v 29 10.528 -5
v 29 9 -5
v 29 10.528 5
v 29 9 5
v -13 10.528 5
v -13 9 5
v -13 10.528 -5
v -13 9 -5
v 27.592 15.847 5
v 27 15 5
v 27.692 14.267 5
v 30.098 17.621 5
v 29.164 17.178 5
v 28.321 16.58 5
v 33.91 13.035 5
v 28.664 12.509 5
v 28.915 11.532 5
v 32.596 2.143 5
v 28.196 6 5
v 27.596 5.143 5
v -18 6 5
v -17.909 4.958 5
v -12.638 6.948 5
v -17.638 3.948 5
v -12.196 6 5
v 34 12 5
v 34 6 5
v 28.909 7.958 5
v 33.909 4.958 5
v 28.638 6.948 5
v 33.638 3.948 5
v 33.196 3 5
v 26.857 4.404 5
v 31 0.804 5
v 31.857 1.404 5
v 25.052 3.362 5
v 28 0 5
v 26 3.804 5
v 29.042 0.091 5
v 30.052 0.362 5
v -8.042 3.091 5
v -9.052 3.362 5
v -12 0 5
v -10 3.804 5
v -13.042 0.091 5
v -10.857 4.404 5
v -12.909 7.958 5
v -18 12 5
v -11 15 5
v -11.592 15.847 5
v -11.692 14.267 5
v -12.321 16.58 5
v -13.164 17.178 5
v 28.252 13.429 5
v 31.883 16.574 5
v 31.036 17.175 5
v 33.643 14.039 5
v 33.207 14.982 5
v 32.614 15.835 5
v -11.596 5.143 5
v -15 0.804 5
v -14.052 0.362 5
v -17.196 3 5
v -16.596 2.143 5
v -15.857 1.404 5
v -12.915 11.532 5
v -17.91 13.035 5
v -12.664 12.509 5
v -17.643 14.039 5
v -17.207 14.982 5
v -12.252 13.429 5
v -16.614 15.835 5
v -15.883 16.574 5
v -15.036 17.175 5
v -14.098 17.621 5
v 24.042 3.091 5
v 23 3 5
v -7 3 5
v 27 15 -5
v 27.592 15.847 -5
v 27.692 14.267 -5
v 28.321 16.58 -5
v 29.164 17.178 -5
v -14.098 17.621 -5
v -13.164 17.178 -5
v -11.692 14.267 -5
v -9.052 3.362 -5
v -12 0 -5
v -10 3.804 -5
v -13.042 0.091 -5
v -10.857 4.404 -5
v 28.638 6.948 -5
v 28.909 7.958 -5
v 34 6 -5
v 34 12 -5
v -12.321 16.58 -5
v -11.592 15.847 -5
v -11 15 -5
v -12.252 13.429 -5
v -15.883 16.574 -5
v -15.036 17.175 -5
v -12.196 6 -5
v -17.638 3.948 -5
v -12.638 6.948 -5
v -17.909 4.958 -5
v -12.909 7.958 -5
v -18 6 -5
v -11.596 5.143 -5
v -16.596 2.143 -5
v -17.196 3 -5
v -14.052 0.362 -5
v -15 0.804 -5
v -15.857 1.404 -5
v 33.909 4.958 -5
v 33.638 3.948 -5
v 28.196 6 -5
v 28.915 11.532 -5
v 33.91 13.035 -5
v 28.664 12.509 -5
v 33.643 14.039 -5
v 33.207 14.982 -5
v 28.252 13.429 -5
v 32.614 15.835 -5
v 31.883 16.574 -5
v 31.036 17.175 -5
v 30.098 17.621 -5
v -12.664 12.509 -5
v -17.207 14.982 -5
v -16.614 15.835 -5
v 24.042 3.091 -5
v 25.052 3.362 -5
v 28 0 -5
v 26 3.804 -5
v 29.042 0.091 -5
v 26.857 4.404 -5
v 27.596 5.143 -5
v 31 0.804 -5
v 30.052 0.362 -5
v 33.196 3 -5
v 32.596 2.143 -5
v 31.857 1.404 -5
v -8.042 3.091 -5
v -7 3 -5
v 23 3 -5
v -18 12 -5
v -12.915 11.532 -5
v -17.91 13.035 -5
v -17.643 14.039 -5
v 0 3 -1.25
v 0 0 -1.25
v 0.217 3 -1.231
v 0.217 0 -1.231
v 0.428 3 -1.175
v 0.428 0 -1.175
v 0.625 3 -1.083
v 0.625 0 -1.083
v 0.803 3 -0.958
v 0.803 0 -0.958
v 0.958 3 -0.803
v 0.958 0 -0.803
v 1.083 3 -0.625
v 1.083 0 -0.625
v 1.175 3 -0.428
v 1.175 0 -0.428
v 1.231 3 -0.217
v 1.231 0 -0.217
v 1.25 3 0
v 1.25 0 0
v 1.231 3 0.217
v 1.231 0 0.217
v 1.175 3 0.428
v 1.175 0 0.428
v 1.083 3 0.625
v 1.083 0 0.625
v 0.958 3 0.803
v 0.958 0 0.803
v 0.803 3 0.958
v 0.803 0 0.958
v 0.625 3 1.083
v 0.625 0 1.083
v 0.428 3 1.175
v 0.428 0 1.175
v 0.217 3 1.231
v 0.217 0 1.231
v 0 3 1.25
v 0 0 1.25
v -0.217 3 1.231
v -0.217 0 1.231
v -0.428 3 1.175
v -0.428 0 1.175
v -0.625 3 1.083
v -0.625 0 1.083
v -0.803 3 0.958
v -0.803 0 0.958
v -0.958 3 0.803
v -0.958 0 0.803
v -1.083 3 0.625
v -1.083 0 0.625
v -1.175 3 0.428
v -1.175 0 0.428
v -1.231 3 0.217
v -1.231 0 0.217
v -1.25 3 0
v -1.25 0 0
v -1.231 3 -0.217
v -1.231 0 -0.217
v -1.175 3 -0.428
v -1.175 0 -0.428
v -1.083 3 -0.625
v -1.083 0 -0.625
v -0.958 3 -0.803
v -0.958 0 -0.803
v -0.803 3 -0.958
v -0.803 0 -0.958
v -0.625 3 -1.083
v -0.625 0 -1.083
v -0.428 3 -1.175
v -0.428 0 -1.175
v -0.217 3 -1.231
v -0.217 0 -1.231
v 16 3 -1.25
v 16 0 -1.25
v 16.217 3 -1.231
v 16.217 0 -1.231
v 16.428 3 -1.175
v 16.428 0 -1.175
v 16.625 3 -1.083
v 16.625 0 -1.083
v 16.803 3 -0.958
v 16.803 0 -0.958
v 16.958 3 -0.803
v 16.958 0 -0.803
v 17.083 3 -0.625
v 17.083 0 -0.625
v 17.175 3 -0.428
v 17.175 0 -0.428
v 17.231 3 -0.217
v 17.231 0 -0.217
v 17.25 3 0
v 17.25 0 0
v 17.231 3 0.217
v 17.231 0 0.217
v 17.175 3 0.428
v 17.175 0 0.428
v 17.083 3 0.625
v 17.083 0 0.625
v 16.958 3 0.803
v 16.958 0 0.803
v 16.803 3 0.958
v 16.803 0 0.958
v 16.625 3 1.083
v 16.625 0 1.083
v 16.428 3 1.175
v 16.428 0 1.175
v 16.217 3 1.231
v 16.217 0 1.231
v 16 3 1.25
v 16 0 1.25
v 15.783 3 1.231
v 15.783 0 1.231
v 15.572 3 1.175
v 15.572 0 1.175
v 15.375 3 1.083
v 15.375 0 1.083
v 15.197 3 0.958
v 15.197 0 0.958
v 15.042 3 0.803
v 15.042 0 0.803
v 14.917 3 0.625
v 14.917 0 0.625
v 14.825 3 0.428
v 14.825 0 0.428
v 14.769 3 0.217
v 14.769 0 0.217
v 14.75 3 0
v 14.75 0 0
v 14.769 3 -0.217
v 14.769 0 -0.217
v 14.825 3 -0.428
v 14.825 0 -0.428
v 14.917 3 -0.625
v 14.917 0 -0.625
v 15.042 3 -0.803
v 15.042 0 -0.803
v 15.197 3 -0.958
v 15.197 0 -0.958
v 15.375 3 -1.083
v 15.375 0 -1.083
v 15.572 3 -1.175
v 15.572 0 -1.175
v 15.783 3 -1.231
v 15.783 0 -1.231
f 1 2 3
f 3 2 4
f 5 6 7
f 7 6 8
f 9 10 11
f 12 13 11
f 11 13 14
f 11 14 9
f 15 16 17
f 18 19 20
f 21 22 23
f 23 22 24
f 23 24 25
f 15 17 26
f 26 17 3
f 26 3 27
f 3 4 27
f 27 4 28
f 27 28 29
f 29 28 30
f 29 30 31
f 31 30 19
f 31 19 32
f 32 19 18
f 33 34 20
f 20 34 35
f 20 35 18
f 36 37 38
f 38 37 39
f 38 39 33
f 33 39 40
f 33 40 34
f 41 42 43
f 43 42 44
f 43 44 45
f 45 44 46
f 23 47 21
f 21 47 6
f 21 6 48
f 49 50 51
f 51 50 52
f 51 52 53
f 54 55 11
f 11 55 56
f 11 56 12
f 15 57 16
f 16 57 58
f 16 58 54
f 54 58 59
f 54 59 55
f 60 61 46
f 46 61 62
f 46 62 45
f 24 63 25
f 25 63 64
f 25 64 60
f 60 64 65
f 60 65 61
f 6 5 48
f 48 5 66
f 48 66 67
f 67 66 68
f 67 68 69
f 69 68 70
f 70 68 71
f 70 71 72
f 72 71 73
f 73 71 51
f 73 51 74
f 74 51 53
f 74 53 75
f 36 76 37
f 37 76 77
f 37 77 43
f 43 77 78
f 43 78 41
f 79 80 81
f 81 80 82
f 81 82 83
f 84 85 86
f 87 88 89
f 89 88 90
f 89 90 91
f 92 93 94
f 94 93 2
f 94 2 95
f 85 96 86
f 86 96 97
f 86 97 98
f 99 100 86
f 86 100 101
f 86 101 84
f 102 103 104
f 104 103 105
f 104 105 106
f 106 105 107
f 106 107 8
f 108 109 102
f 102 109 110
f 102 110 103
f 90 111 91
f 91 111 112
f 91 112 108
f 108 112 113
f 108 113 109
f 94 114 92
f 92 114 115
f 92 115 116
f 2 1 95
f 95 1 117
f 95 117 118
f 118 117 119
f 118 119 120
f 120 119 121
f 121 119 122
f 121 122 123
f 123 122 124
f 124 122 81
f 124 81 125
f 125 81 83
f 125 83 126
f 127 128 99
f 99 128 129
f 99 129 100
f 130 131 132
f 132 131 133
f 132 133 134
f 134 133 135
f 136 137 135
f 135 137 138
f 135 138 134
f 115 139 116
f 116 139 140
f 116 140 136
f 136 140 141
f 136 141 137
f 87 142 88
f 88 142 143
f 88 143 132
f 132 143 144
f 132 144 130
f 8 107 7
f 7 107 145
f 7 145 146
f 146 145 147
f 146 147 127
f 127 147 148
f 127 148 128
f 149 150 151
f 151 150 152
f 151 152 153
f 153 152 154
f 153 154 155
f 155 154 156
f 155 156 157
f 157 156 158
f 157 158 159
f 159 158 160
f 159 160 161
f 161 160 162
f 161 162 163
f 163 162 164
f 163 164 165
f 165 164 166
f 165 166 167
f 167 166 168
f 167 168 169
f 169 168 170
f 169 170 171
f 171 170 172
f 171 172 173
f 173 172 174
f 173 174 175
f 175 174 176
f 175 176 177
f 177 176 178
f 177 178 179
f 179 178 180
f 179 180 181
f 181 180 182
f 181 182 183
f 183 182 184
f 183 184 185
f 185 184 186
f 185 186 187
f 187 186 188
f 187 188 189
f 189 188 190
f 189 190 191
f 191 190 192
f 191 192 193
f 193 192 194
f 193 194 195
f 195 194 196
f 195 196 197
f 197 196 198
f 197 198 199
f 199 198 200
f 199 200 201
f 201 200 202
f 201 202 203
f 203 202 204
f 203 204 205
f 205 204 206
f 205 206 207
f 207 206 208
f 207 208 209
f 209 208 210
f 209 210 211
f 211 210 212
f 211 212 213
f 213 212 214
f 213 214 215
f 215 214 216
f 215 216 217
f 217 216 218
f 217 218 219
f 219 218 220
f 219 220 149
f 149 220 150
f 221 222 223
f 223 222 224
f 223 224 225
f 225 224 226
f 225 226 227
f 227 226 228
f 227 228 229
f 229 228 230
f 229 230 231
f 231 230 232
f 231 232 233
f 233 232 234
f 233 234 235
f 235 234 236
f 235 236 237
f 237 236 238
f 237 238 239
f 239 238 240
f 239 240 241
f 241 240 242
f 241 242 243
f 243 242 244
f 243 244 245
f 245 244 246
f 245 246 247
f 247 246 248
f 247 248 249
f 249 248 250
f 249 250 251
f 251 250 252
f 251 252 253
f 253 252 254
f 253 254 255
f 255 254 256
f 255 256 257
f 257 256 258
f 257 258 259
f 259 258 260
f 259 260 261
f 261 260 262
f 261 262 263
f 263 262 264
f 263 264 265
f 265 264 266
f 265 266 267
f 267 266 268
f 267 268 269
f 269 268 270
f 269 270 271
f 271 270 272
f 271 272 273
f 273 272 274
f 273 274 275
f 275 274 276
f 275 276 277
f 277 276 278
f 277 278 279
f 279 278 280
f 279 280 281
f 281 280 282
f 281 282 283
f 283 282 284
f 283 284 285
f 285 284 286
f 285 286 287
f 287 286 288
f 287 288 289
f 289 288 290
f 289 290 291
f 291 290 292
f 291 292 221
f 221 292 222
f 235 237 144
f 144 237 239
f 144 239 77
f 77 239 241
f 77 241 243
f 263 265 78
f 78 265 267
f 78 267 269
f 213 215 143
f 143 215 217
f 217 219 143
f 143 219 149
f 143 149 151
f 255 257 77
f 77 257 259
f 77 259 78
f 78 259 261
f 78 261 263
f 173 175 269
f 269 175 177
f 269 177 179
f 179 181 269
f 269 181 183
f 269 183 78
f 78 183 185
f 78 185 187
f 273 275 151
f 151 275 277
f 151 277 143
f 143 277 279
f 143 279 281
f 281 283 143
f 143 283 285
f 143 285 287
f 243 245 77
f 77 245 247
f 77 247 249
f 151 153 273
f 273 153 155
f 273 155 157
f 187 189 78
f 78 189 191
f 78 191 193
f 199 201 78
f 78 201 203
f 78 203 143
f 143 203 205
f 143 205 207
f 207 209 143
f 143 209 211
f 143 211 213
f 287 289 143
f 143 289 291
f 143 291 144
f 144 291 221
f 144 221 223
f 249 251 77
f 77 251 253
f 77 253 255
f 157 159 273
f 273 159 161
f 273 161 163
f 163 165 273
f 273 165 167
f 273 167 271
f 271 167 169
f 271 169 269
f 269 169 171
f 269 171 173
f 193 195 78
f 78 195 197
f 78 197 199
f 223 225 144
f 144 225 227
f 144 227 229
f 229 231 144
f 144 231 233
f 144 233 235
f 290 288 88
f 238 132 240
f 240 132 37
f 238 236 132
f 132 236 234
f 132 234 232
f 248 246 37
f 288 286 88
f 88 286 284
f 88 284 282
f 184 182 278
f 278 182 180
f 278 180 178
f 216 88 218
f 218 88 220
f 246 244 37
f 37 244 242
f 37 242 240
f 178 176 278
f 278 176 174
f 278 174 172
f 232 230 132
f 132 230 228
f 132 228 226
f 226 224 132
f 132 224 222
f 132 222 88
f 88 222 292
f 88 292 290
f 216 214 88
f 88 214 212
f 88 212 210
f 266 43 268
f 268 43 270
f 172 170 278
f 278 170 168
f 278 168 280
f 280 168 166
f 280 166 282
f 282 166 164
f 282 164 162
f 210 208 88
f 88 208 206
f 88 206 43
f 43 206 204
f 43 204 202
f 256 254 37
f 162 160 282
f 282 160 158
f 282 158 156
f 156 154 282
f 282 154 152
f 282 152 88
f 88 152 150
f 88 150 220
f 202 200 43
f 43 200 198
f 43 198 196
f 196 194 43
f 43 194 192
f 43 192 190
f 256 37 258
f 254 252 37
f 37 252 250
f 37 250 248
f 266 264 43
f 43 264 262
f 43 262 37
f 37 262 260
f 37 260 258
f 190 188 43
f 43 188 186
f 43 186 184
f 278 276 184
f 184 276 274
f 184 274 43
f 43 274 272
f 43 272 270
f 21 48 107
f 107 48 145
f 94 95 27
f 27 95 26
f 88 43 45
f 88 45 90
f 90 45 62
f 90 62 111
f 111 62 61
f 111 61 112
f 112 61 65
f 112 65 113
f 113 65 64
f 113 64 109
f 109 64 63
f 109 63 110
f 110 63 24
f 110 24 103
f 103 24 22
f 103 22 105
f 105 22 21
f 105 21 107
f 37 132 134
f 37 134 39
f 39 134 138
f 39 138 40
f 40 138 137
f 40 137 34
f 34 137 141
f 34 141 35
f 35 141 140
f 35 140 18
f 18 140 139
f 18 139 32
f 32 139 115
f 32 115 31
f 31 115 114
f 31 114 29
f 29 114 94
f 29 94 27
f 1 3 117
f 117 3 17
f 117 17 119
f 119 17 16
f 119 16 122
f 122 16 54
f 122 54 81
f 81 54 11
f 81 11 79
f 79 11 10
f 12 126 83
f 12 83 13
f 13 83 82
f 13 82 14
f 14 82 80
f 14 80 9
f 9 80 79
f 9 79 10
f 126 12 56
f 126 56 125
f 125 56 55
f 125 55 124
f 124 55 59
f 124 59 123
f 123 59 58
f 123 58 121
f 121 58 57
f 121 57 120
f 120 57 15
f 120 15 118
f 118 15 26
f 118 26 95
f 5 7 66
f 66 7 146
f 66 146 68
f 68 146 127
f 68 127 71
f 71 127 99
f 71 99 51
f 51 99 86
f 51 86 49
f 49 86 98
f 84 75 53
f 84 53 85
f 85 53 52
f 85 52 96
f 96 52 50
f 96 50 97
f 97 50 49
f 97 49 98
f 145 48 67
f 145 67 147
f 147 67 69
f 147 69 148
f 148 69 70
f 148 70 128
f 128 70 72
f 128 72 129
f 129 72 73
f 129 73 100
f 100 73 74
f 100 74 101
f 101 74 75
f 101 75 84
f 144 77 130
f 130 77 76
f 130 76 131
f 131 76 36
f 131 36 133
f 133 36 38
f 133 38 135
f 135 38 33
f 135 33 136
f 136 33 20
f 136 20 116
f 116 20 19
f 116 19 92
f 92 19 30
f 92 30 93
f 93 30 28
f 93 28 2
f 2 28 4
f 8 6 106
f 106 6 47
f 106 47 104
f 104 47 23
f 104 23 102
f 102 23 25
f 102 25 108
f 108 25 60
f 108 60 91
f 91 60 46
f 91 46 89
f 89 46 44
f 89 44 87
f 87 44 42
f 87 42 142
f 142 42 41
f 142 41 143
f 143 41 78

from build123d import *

# Parameters (mm, degrees)
SKETCH1_W           = 42
SKETCH1_H           = 10
SKETCH1_R           = 1.25
BOSS_EXTRUDE1_DEPTH = 3
SKETCH2_W           = 5
SKETCH2_H           = 10
BOSS_EXTRUDE2_DEPTH = 18
SKETCH3_W           = 10
SKETCH3_H           = 3
BOSS_EXTRUDE3_DEPTH = 2
SKETCH4_W           = 10
SKETCH4_H           = 3
BOSS_EXTRUDE4_DEPTH = 2
FILLET1_R           = 6


with BuildPart() as part:
    # Sketch1 → Boss-Extrude1 (new body)
    with BuildSketch(Plane(origin=(0, 0, 0), x_dir=(1, 0, 0), z_dir=(0, 1, 0))):
        with Locations((8, 0)):
            Rectangle(SKETCH1_W, SKETCH1_H)
        with Locations(Location((0, 0, 0), (0, 0, 270))):
            Circle(SKETCH1_R, mode=Mode.SUBTRACT)
        with Locations(Location((16, 0, 0), (0, 0, 270))):
            Circle(SKETCH1_R, mode=Mode.SUBTRACT)
    extrude(amount=BOSS_EXTRUDE1_DEPTH)

    # Sketch2 → Boss-Extrude2 (add)
    with BuildSketch(Plane.XZ):
        with Locations((-15.5, 0)):
            Rectangle(SKETCH2_W, SKETCH2_H)
        with Locations((31.5, 0)):
            Rectangle(SKETCH2_W, SKETCH2_H)
    extrude(amount=-BOSS_EXTRUDE2_DEPTH)

    # Sketch3 → Boss-Extrude3 (add)
    with BuildSketch(Plane(origin=(-13, 0, 0), x_dir=(0, 0, -1), z_dir=(1, 0, 0))):
        with Locations((0, 16.5)):
            Rectangle(SKETCH3_W, SKETCH3_H)
    extrude(amount=BOSS_EXTRUDE3_DEPTH)

    # Sketch4 → Boss-Extrude4 (add)
    with BuildSketch(Plane.ZY.offset(-29)):
        with Locations((0, 16.5)):
            Rectangle(SKETCH4_W, SKETCH4_H)
    extrude(amount=BOSS_EXTRUDE4_DEPTH)

    # Fillet1
    # the kernel refuses this fillet: 6 mm, written as the material it adds along each edge
    with BuildSketch(Plane(origin=(29, 15, 5), x_dir=(-1, 0, 0), z_dir=(0, 0, -1))) as fillet1_piece_1:
        with BuildLine():
            CenterArc((6, -4.472135955), FILLET1_R, 131.810314896, 48.189685104)
            Line((0, -4.472135955), (-0.12, -4.472135955))
            Line((-0.12, -4.472135955), (-0.12, 0))
            Line((-0.12, 0), (0, 0.12))
            ThreePointArc((0, 0.12), (1, 0.12), (1.92, 0.089442719))
            Line((1.92, 0.089442719), (2, 0))
        make_face()
    extrude(amount=10)
    with BuildSketch(Plane(origin=(29, 3, 5), x_dir=(0, 1, 0), z_dir=(0, 0, -1))) as fillet1_piece_2:
        with BuildLine():
            CenterArc((FILLET1_R, -FILLET1_R), FILLET1_R, 90, 90)
            Line((0, -FILLET1_R), (-FILLET1_R * 0.02, -FILLET1_R))
            Line((-FILLET1_R * 0.02, -FILLET1_R), (-FILLET1_R * 0.02, FILLET1_R * 0.02))
            Line((-FILLET1_R * 0.02, FILLET1_R * 0.02), (FILLET1_R, FILLET1_R * 0.02))
            Line((FILLET1_R, FILLET1_R * 0.02), (FILLET1_R, 0))
        make_face()
    extrude(amount=10)
    with BuildSketch(Plane(origin=(-13, 15, -5), x_dir=(0, -1, 0), z_dir=(0, 0, 1))) as fillet1_piece_3:
        with BuildLine():
            CenterArc((4.472135955, 6), FILLET1_R, 221.810314896, 48.189685104)
            Line((0, 2), (-0.089442719, 1.92))
            ThreePointArc((-0.089442719, 1.92), (-0.12, 1), (-0.12, 0))
            Line((-0.12, 0), (0, -0.12))
            Line((0, -0.12), (4.472135955, -0.12))
            Line((4.472135955, -0.12), (4.472135955, 0))
        make_face()
    extrude(amount=10)
    with BuildSketch(Plane(origin=(-13, 3, -5), x_dir=(1, 0, 0), z_dir=(0, 0, 1))) as fillet1_piece_4:
        with BuildLine():
            CenterArc((FILLET1_R, FILLET1_R), FILLET1_R, 180, 90)
            Line((0, FILLET1_R), (-FILLET1_R * 0.02, FILLET1_R))
            Line((-FILLET1_R * 0.02, FILLET1_R), (-FILLET1_R * 0.02, -FILLET1_R * 0.02))
            Line((-FILLET1_R * 0.02, -FILLET1_R * 0.02), (FILLET1_R, -FILLET1_R * 0.02))
            Line((FILLET1_R, -FILLET1_R * 0.02), (FILLET1_R, 0))
        make_face()
    extrude(amount=10)
    # the kernel refuses this fillet: 6 mm, written as the material it takes off along each edge
    with BuildSketch(Plane(origin=(-18, 0, -20), x_dir=(1, 0, 0), z_dir=(0, 0, 1))) as fillet1_2_piece_1:
        with BuildLine():
            CenterArc((FILLET1_R, FILLET1_R), FILLET1_R, 180, 90)
            Line((0, FILLET1_R), (-FILLET1_R * 0.02, FILLET1_R))
            Line((-FILLET1_R * 0.02, FILLET1_R), (-FILLET1_R * 0.02, -FILLET1_R * 0.02))
            Line((-FILLET1_R * 0.02, -FILLET1_R * 0.02), (FILLET1_R, -FILLET1_R * 0.02))
            Line((FILLET1_R, -FILLET1_R * 0.02), (FILLET1_R, 0))
        make_face()
    extrude(amount=40, mode=Mode.SUBTRACT)
    with BuildSketch(Plane(origin=(-18, 18, -20), x_dir=(1, 0, 0), z_dir=(0, 0, 1)), Plane(origin=(34, 0, -20), x_dir=(-1, 0, 0), z_dir=(0, 0, 1)), Plane(origin=(34, 18, -20), x_dir=(0, -1, 0), z_dir=(0, 0, 1))) as fillet1_2_piece_2:
        with BuildLine():
            CenterArc((FILLET1_R, -FILLET1_R), FILLET1_R, 90, 90)
            Line((0, -FILLET1_R), (-FILLET1_R * 0.02, -FILLET1_R))
            Line((-FILLET1_R * 0.02, -FILLET1_R), (-FILLET1_R * 0.02, FILLET1_R * 0.02))
            Line((-FILLET1_R * 0.02, FILLET1_R * 0.02), (FILLET1_R, FILLET1_R * 0.02))
            Line((FILLET1_R, FILLET1_R * 0.02), (FILLET1_R, 0))
        make_face()
    extrude(amount=40, mode=Mode.SUBTRACT)
    with BuildSketch(Plane(origin=(27, 18, -17.990381057), x_dir=(1, 0, 0), z_dir=(0, 0, 1))) as fillet1_2_piece_3:
        with BuildLine():
            CenterArc((5.196152423, -6), FILLET1_R, 90, 60)
            Line((0, -3), (-0.103923048, -2.94))
            ThreePointArc((-0.103923048, -2.94), (-0.12, -1.5), (-0.12, 0))
            Line((-0.12, 0), (0, 0.12))
            Line((0, 0.12), (5.196152423, 0.12))
            Line((5.196152423, 0.12), (5.196152423, 0))
        make_face()
    extrude(amount=35.980762114, mode=Mode.SUBTRACT)
    with BuildSketch(Plane(origin=(-11, 18, 17.990381057), x_dir=(0, -1, 0), z_dir=(0, 0, -1))) as fillet1_2_piece_4:
        with BuildLine():
            CenterArc((6, 5.196152423), FILLET1_R, 180, 60)
            Line((0, 5.196152423), (-0.12, 5.196152423))
            Line((-0.12, 5.196152423), (-0.12, 0))
            Line((-0.12, 0), (0, -0.12))
            ThreePointArc((0, -0.12), (1.5, -0.12), (2.94, -0.103923048))
            Line((2.94, -0.103923048), (3, 0))
        make_face()
    extrude(amount=35.980762114, mode=Mode.SUBTRACT)


solid = part.part
